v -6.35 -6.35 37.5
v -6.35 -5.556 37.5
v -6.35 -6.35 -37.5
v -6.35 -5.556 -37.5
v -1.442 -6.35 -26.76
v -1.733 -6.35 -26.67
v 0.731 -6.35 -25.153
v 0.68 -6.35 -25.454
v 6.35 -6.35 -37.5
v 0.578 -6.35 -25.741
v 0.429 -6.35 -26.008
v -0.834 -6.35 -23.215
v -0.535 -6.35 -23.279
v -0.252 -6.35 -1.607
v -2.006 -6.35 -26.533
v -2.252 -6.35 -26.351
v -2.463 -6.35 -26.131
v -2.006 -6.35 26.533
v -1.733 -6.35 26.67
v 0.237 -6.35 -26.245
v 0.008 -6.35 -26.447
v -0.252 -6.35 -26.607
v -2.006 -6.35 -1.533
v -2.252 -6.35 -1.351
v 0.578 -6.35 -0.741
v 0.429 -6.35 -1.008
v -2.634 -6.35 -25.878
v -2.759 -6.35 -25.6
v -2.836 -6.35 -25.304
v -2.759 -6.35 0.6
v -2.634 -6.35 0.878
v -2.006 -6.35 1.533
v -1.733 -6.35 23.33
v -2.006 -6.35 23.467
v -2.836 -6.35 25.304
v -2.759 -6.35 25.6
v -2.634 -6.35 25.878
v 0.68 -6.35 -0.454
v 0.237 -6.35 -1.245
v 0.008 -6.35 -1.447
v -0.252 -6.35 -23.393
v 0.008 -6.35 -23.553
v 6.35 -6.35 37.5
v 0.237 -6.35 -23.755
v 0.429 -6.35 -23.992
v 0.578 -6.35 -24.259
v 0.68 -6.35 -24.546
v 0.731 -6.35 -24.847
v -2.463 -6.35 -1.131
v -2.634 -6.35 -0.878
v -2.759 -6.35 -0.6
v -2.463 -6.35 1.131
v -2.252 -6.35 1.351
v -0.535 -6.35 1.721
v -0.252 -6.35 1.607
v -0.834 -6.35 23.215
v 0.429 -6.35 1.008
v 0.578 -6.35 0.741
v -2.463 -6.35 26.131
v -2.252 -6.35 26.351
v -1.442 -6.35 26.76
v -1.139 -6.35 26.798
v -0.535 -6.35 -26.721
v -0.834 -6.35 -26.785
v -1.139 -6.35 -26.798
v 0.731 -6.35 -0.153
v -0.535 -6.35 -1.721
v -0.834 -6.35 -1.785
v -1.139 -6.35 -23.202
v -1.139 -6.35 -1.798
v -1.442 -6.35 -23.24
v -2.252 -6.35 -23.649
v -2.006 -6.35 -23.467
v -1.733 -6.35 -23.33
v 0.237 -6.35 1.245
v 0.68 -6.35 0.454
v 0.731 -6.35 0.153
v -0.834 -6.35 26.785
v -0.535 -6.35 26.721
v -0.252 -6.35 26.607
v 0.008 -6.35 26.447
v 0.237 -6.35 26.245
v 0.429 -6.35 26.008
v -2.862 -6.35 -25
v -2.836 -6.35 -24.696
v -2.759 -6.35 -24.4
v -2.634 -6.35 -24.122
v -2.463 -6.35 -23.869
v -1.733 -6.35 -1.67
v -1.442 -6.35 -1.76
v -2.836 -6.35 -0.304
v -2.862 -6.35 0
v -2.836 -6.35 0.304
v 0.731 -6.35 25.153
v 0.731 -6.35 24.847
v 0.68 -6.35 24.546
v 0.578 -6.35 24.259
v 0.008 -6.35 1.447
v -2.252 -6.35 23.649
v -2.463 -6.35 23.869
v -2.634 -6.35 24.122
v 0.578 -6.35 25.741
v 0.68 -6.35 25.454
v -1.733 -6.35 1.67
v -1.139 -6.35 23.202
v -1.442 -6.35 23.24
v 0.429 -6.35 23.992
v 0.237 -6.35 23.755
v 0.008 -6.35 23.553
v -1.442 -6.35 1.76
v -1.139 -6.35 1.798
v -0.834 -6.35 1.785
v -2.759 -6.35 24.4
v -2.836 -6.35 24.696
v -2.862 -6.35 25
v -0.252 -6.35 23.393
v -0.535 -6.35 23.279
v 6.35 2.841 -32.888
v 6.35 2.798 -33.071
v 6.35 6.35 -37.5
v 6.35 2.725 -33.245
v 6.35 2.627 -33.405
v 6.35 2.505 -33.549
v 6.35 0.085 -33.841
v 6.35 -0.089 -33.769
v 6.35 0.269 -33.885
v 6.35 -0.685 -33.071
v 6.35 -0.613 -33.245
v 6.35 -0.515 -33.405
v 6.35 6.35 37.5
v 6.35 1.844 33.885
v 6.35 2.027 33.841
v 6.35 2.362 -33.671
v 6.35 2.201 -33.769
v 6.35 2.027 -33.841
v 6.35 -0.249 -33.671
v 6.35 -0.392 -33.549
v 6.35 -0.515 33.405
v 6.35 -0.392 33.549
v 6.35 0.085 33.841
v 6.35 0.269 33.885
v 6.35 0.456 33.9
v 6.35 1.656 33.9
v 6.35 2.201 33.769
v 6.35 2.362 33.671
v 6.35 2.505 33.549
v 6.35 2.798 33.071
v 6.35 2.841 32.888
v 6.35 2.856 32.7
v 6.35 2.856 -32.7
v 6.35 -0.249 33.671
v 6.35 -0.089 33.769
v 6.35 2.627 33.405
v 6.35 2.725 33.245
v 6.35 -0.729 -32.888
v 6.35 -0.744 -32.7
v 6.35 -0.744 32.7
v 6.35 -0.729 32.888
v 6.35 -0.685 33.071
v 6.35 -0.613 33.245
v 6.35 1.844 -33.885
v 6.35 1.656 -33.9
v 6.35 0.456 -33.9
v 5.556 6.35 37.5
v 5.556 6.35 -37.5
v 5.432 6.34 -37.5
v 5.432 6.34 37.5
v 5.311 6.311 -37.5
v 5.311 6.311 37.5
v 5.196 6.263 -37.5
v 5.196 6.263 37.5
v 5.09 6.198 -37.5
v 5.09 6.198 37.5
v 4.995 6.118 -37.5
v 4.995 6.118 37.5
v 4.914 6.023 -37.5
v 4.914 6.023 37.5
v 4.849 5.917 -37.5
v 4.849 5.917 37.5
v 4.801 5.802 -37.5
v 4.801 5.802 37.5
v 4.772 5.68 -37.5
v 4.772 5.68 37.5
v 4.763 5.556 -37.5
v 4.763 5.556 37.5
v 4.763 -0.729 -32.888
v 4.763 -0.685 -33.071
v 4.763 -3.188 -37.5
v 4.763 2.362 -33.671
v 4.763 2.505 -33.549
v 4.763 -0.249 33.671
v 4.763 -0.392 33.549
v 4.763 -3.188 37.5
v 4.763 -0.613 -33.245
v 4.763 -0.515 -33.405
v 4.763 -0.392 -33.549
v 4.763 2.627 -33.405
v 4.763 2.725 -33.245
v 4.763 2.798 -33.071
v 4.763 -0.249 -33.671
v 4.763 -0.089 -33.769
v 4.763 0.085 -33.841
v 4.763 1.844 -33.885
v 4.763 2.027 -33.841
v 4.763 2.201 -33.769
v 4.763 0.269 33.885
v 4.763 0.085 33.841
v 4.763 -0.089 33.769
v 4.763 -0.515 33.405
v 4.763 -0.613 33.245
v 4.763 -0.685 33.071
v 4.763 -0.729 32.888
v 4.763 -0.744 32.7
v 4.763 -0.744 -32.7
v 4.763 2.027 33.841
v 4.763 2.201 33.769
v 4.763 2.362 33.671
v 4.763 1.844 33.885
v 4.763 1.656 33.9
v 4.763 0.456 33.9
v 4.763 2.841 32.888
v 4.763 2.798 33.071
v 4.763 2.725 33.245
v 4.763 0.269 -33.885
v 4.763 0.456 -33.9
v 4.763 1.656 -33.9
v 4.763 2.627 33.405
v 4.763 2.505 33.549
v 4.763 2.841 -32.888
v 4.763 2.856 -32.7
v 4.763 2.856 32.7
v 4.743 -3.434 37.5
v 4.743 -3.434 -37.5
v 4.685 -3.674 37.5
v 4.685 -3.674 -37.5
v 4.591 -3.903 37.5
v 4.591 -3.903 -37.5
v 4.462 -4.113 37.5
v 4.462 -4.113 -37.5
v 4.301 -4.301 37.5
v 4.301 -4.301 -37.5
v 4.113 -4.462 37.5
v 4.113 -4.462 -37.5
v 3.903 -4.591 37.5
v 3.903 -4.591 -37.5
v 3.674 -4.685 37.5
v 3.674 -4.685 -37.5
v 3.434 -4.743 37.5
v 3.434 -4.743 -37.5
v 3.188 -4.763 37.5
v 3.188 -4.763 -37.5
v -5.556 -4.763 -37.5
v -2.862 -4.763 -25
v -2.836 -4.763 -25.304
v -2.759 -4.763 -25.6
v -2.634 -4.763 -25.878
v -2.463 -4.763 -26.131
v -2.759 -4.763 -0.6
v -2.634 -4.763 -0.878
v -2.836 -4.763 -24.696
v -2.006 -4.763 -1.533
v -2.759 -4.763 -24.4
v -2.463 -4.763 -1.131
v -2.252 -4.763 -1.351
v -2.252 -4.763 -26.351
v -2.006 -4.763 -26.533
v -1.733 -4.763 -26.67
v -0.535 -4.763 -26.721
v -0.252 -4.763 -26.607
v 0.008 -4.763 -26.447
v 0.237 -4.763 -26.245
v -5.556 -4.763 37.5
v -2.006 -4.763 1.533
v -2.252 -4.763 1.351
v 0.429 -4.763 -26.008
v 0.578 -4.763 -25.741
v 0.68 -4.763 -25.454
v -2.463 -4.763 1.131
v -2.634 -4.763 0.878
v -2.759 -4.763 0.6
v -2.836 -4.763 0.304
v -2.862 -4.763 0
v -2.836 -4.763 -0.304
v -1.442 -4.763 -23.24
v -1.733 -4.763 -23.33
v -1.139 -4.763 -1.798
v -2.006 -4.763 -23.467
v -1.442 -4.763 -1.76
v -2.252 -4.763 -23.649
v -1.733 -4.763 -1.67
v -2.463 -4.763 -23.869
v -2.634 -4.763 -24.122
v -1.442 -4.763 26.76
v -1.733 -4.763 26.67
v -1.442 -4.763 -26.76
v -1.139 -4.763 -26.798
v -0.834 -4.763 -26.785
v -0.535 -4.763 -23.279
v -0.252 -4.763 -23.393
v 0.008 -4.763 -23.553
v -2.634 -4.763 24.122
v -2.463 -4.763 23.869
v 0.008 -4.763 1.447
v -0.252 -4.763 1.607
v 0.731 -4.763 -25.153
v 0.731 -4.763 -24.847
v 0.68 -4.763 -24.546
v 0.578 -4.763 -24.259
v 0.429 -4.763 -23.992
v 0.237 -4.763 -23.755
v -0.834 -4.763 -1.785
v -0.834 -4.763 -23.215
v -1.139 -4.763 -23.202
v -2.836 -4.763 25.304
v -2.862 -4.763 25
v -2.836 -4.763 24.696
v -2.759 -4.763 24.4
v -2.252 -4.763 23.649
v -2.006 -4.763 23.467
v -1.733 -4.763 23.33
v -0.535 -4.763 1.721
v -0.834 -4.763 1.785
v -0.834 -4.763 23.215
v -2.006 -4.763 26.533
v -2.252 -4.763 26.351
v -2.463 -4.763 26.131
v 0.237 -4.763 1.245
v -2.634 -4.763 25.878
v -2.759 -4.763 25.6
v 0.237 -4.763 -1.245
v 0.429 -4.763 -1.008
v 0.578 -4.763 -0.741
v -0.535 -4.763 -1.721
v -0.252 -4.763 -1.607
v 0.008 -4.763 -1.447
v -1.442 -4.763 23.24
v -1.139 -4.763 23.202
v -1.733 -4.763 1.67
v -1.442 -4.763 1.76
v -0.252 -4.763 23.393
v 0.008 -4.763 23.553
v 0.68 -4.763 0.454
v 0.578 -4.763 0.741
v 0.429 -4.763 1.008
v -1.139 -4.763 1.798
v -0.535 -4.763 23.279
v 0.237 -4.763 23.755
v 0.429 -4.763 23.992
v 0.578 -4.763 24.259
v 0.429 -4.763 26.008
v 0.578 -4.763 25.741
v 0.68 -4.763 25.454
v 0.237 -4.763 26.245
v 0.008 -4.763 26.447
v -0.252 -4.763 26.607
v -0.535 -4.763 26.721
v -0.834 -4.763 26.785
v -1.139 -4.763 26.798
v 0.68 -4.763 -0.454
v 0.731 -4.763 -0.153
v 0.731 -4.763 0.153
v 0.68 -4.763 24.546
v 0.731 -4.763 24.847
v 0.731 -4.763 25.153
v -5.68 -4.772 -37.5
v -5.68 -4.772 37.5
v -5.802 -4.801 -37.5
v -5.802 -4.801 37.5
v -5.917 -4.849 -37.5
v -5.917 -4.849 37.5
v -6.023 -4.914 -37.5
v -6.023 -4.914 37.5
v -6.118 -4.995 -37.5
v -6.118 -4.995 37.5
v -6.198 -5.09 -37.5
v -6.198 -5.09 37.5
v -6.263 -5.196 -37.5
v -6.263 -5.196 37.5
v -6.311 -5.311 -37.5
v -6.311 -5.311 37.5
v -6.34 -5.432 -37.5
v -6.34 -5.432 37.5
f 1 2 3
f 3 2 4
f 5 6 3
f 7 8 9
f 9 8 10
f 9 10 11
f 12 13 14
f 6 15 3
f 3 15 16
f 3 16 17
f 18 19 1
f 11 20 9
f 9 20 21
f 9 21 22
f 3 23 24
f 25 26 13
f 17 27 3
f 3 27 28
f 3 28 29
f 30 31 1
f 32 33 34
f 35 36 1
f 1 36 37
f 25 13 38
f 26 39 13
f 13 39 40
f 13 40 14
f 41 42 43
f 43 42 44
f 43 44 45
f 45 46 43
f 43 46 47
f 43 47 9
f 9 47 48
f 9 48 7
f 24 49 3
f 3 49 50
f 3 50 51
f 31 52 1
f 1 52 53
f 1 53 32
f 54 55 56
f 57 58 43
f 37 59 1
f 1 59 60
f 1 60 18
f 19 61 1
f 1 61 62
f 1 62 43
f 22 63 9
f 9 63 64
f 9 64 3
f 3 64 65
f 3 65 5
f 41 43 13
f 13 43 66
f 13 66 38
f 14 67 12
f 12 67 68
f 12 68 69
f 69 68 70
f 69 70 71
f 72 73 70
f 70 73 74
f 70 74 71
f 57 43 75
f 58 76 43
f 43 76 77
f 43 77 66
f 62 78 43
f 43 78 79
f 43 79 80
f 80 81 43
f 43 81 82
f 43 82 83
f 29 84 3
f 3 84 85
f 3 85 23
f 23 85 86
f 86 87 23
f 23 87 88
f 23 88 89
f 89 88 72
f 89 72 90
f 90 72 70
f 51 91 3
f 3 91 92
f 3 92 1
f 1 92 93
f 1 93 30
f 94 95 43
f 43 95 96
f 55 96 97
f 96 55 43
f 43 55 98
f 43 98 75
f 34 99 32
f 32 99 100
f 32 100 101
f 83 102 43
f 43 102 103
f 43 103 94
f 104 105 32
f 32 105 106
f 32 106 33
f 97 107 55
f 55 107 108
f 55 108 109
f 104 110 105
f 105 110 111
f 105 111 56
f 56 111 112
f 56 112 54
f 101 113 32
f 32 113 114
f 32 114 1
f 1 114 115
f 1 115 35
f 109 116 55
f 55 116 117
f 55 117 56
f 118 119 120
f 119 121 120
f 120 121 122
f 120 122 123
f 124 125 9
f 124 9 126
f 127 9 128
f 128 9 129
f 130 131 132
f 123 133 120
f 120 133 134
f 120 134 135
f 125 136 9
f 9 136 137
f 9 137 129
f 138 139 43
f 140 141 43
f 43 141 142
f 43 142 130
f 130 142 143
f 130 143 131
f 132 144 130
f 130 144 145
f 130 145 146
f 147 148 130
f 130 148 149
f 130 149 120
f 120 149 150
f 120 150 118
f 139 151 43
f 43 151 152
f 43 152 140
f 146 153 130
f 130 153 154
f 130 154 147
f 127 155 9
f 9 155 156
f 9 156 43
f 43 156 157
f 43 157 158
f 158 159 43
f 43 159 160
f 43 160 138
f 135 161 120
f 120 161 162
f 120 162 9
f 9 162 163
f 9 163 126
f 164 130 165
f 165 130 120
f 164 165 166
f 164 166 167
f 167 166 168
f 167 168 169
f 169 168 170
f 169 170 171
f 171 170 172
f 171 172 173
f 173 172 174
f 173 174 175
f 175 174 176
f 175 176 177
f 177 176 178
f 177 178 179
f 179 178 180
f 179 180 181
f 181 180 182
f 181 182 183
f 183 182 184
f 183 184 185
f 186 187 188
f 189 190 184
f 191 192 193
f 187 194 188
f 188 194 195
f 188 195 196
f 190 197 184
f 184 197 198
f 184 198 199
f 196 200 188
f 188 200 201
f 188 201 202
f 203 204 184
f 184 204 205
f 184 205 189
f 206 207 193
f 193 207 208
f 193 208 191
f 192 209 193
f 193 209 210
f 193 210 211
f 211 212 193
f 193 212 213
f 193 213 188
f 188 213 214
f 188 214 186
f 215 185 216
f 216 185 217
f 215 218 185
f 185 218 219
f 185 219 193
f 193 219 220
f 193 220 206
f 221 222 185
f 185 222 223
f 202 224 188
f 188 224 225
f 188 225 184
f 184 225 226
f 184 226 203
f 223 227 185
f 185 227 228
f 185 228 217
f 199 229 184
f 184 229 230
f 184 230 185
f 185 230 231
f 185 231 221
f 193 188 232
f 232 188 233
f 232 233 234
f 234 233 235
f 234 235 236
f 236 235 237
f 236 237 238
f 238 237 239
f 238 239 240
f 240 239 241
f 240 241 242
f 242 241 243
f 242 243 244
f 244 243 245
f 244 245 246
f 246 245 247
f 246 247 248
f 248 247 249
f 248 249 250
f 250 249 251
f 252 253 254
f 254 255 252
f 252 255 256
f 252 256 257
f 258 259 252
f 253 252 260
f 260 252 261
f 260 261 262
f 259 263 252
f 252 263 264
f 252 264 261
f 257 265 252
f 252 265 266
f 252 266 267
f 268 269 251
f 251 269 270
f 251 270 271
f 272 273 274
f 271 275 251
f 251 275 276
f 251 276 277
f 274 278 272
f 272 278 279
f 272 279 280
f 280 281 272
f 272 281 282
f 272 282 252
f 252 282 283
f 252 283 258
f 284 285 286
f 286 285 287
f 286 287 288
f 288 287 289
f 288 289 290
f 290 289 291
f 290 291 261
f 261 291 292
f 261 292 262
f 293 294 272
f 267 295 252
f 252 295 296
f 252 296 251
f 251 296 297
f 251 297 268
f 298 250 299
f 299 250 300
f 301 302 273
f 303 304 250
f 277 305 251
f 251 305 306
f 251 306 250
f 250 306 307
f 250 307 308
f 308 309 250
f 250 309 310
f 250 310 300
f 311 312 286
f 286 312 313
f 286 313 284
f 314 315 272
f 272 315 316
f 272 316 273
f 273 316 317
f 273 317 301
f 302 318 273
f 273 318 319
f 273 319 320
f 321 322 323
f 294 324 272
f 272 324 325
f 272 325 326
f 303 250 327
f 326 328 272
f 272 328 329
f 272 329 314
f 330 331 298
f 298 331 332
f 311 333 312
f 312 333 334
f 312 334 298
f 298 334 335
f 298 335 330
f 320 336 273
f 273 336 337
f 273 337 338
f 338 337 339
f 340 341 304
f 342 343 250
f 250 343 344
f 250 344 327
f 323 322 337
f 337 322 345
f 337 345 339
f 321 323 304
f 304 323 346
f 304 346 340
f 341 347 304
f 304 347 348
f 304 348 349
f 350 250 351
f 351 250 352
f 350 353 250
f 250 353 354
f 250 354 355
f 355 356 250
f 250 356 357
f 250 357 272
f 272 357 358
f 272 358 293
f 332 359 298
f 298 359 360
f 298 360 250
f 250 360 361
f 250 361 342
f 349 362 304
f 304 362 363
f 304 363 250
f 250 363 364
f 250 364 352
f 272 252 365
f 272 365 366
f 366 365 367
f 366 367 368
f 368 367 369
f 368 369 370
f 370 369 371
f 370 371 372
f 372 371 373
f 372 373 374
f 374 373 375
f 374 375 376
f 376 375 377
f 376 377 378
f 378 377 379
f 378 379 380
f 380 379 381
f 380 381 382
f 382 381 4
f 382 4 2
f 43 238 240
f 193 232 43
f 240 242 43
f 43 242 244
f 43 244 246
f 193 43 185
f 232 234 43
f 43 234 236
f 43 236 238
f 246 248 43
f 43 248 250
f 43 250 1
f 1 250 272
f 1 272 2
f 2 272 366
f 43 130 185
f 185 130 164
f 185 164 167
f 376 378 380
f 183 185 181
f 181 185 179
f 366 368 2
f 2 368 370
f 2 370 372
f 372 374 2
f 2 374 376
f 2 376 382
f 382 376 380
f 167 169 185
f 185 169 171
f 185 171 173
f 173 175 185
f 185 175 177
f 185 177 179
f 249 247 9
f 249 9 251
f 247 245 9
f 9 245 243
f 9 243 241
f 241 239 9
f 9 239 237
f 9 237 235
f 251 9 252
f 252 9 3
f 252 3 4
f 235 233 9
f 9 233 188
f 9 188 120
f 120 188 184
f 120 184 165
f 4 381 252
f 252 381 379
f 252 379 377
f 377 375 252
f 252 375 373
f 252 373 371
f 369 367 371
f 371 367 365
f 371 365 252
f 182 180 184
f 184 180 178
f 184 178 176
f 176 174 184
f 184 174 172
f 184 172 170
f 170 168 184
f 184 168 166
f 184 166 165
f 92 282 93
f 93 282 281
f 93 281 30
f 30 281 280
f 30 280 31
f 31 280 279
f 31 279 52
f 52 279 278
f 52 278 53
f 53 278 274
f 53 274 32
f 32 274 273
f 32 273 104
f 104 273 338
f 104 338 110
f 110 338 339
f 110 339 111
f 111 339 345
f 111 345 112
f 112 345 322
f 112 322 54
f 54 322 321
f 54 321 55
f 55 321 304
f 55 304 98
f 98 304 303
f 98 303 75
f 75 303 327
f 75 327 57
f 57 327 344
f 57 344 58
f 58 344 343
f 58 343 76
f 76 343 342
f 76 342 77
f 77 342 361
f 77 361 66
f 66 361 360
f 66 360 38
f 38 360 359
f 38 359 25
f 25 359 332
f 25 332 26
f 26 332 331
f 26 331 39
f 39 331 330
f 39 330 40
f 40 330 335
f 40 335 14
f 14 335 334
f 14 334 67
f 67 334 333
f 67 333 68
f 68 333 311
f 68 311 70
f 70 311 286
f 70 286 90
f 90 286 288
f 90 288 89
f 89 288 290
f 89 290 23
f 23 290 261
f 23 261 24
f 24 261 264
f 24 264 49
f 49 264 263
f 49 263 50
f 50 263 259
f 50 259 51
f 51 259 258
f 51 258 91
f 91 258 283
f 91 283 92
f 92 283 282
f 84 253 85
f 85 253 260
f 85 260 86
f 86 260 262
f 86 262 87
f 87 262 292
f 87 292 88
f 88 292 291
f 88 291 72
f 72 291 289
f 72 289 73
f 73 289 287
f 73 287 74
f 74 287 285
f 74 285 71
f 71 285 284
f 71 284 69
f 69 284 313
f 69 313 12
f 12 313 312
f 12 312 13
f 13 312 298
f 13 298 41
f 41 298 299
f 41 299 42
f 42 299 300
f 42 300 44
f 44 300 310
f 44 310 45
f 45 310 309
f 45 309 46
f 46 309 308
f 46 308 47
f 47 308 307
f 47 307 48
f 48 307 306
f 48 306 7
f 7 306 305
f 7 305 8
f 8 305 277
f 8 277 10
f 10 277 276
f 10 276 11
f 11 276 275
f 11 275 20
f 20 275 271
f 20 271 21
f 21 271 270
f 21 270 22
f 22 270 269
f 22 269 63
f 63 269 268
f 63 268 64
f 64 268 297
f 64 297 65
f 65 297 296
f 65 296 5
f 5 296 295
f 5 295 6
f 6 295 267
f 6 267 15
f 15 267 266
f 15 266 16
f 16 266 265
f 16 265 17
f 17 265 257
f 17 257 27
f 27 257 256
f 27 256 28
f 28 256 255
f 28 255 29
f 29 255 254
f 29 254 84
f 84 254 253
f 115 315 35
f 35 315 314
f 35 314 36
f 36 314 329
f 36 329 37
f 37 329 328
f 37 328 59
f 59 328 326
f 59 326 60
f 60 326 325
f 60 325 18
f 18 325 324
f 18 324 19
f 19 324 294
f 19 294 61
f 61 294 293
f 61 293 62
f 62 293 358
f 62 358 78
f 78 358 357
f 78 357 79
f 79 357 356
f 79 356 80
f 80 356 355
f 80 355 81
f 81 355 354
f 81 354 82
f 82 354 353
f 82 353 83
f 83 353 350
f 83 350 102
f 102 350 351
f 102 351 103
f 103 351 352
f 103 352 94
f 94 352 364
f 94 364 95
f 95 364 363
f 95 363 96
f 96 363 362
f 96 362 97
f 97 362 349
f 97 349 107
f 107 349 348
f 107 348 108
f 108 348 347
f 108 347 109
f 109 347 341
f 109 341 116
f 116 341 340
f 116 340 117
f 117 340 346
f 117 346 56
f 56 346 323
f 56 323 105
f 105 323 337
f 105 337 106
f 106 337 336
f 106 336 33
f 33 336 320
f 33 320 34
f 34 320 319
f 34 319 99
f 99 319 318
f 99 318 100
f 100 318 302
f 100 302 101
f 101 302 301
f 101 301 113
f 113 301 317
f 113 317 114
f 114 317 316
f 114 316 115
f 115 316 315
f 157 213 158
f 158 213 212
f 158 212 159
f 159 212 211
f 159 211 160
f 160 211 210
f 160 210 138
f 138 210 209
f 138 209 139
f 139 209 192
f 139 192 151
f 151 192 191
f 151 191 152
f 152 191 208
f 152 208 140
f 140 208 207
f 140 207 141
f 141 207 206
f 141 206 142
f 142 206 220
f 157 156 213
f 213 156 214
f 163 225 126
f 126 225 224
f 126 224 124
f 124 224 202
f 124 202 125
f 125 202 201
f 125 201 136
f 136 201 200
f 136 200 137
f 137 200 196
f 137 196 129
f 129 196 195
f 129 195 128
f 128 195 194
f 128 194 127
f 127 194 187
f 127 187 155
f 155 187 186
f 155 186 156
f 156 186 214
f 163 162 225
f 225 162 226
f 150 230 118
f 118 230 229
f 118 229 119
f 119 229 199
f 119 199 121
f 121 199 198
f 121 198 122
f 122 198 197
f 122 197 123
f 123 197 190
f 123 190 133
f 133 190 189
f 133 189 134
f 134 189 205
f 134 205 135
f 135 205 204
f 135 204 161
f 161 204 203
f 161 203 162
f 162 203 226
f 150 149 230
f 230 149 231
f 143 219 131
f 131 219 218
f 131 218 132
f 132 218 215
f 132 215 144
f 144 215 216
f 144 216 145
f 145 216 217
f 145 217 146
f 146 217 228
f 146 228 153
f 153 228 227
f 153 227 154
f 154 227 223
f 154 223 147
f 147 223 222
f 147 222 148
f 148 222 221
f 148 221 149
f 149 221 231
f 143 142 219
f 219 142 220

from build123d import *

# Parameters (mm, degrees)
BOSS_EXTRUDE1_DEPTH = 37.5
SKETCH3_R           = 1.8
CUT_EXTRUDE1_DEPTH  = 40.623984608
CUT_EXTRUDE2_DEPTH  = 40.623984608


with BuildPart() as part:
    # Sketch2 → Boss-Extrude1 (new, symmetric)
    with BuildSketch(Plane.XY):
        with BuildLine():
            Line((-6.35, -6.35), (6.35, -6.35))
            Line((6.35, -6.35), (6.35, 6.35))
            Line((6.35, 6.35), (5.55625, 6.35))
            ThreePointArc((5.55625, 6.35), (4.994983992, 6.117516008), (4.7625, 5.55625))
            Line((4.7625, 5.55625), (4.7625, -3.1877))
            ThreePointArc((4.7625, -3.1877), (4.301251759, -4.301251759), (3.1877, -4.7625))
            Line((3.1877, -4.7625), (-5.55625, -4.7625))
            ThreePointArc((-5.55625, -4.7625), (-6.117516008, -4.994983992), (-6.35, -5.55625))
            Line((-6.35, -5.55625), (-6.35, -6.35))
        make_face()
    extrude(amount=BOSS_EXTRUDE1_DEPTH, both=True)

    # Sketch3 → Cut-Extrude1 (cut, through all)
    with BuildSketch(Plane(origin=(0, -4.7625, 0), x_dir=(1, 0, 0), z_dir=(0, 1, 0))):
        with Locations(Location((-1.0623, 25, 0), (0, 0, 180))):
            Circle(SKETCH3_R)
        with Locations(Location((-1.0623, -25, 0), (0, 0, 180))):
            Circle(SKETCH3_R)
        with Locations(Location((-1.0623, 0, 0), (0, 0, 180))):
            Circle(SKETCH3_R)
    extrude(amount=-CUT_EXTRUDE1_DEPTH, mode=Mode.SUBTRACT)

    # Sketch4 → Cut-Extrude2 (cut, through all)
    with BuildSketch(Plane.ZY.offset(-4.7625)):
        with BuildLine():
            Line((-32.7, 2.85625), (32.7, 2.85625))
            ThreePointArc((32.7, 2.85625), (33.548528137, 2.504778137), (33.9, 1.65625))
            Line((33.9, 1.65625), (33.9, 0.45625))
            ThreePointArc((33.9, 0.45625), (33.548528137, -0.392278137), (32.7, -0.74375))
            Line((32.7, -0.74375), (-32.7, -0.74375))
            ThreePointArc((-32.7, -0.74375), (-33.548528137, -0.392278137), (-33.9, 0.45625))
            Line((-33.9, 0.45625), (-33.9, 1.65625))
            ThreePointArc((-33.9, 1.65625), (-33.548528137, 2.504778137), (-32.7, 2.85625))
        make_face()
    extrude(amount=-CUT_EXTRUDE2_DEPTH, mode=Mode.SUBTRACT)


solid = part.part
